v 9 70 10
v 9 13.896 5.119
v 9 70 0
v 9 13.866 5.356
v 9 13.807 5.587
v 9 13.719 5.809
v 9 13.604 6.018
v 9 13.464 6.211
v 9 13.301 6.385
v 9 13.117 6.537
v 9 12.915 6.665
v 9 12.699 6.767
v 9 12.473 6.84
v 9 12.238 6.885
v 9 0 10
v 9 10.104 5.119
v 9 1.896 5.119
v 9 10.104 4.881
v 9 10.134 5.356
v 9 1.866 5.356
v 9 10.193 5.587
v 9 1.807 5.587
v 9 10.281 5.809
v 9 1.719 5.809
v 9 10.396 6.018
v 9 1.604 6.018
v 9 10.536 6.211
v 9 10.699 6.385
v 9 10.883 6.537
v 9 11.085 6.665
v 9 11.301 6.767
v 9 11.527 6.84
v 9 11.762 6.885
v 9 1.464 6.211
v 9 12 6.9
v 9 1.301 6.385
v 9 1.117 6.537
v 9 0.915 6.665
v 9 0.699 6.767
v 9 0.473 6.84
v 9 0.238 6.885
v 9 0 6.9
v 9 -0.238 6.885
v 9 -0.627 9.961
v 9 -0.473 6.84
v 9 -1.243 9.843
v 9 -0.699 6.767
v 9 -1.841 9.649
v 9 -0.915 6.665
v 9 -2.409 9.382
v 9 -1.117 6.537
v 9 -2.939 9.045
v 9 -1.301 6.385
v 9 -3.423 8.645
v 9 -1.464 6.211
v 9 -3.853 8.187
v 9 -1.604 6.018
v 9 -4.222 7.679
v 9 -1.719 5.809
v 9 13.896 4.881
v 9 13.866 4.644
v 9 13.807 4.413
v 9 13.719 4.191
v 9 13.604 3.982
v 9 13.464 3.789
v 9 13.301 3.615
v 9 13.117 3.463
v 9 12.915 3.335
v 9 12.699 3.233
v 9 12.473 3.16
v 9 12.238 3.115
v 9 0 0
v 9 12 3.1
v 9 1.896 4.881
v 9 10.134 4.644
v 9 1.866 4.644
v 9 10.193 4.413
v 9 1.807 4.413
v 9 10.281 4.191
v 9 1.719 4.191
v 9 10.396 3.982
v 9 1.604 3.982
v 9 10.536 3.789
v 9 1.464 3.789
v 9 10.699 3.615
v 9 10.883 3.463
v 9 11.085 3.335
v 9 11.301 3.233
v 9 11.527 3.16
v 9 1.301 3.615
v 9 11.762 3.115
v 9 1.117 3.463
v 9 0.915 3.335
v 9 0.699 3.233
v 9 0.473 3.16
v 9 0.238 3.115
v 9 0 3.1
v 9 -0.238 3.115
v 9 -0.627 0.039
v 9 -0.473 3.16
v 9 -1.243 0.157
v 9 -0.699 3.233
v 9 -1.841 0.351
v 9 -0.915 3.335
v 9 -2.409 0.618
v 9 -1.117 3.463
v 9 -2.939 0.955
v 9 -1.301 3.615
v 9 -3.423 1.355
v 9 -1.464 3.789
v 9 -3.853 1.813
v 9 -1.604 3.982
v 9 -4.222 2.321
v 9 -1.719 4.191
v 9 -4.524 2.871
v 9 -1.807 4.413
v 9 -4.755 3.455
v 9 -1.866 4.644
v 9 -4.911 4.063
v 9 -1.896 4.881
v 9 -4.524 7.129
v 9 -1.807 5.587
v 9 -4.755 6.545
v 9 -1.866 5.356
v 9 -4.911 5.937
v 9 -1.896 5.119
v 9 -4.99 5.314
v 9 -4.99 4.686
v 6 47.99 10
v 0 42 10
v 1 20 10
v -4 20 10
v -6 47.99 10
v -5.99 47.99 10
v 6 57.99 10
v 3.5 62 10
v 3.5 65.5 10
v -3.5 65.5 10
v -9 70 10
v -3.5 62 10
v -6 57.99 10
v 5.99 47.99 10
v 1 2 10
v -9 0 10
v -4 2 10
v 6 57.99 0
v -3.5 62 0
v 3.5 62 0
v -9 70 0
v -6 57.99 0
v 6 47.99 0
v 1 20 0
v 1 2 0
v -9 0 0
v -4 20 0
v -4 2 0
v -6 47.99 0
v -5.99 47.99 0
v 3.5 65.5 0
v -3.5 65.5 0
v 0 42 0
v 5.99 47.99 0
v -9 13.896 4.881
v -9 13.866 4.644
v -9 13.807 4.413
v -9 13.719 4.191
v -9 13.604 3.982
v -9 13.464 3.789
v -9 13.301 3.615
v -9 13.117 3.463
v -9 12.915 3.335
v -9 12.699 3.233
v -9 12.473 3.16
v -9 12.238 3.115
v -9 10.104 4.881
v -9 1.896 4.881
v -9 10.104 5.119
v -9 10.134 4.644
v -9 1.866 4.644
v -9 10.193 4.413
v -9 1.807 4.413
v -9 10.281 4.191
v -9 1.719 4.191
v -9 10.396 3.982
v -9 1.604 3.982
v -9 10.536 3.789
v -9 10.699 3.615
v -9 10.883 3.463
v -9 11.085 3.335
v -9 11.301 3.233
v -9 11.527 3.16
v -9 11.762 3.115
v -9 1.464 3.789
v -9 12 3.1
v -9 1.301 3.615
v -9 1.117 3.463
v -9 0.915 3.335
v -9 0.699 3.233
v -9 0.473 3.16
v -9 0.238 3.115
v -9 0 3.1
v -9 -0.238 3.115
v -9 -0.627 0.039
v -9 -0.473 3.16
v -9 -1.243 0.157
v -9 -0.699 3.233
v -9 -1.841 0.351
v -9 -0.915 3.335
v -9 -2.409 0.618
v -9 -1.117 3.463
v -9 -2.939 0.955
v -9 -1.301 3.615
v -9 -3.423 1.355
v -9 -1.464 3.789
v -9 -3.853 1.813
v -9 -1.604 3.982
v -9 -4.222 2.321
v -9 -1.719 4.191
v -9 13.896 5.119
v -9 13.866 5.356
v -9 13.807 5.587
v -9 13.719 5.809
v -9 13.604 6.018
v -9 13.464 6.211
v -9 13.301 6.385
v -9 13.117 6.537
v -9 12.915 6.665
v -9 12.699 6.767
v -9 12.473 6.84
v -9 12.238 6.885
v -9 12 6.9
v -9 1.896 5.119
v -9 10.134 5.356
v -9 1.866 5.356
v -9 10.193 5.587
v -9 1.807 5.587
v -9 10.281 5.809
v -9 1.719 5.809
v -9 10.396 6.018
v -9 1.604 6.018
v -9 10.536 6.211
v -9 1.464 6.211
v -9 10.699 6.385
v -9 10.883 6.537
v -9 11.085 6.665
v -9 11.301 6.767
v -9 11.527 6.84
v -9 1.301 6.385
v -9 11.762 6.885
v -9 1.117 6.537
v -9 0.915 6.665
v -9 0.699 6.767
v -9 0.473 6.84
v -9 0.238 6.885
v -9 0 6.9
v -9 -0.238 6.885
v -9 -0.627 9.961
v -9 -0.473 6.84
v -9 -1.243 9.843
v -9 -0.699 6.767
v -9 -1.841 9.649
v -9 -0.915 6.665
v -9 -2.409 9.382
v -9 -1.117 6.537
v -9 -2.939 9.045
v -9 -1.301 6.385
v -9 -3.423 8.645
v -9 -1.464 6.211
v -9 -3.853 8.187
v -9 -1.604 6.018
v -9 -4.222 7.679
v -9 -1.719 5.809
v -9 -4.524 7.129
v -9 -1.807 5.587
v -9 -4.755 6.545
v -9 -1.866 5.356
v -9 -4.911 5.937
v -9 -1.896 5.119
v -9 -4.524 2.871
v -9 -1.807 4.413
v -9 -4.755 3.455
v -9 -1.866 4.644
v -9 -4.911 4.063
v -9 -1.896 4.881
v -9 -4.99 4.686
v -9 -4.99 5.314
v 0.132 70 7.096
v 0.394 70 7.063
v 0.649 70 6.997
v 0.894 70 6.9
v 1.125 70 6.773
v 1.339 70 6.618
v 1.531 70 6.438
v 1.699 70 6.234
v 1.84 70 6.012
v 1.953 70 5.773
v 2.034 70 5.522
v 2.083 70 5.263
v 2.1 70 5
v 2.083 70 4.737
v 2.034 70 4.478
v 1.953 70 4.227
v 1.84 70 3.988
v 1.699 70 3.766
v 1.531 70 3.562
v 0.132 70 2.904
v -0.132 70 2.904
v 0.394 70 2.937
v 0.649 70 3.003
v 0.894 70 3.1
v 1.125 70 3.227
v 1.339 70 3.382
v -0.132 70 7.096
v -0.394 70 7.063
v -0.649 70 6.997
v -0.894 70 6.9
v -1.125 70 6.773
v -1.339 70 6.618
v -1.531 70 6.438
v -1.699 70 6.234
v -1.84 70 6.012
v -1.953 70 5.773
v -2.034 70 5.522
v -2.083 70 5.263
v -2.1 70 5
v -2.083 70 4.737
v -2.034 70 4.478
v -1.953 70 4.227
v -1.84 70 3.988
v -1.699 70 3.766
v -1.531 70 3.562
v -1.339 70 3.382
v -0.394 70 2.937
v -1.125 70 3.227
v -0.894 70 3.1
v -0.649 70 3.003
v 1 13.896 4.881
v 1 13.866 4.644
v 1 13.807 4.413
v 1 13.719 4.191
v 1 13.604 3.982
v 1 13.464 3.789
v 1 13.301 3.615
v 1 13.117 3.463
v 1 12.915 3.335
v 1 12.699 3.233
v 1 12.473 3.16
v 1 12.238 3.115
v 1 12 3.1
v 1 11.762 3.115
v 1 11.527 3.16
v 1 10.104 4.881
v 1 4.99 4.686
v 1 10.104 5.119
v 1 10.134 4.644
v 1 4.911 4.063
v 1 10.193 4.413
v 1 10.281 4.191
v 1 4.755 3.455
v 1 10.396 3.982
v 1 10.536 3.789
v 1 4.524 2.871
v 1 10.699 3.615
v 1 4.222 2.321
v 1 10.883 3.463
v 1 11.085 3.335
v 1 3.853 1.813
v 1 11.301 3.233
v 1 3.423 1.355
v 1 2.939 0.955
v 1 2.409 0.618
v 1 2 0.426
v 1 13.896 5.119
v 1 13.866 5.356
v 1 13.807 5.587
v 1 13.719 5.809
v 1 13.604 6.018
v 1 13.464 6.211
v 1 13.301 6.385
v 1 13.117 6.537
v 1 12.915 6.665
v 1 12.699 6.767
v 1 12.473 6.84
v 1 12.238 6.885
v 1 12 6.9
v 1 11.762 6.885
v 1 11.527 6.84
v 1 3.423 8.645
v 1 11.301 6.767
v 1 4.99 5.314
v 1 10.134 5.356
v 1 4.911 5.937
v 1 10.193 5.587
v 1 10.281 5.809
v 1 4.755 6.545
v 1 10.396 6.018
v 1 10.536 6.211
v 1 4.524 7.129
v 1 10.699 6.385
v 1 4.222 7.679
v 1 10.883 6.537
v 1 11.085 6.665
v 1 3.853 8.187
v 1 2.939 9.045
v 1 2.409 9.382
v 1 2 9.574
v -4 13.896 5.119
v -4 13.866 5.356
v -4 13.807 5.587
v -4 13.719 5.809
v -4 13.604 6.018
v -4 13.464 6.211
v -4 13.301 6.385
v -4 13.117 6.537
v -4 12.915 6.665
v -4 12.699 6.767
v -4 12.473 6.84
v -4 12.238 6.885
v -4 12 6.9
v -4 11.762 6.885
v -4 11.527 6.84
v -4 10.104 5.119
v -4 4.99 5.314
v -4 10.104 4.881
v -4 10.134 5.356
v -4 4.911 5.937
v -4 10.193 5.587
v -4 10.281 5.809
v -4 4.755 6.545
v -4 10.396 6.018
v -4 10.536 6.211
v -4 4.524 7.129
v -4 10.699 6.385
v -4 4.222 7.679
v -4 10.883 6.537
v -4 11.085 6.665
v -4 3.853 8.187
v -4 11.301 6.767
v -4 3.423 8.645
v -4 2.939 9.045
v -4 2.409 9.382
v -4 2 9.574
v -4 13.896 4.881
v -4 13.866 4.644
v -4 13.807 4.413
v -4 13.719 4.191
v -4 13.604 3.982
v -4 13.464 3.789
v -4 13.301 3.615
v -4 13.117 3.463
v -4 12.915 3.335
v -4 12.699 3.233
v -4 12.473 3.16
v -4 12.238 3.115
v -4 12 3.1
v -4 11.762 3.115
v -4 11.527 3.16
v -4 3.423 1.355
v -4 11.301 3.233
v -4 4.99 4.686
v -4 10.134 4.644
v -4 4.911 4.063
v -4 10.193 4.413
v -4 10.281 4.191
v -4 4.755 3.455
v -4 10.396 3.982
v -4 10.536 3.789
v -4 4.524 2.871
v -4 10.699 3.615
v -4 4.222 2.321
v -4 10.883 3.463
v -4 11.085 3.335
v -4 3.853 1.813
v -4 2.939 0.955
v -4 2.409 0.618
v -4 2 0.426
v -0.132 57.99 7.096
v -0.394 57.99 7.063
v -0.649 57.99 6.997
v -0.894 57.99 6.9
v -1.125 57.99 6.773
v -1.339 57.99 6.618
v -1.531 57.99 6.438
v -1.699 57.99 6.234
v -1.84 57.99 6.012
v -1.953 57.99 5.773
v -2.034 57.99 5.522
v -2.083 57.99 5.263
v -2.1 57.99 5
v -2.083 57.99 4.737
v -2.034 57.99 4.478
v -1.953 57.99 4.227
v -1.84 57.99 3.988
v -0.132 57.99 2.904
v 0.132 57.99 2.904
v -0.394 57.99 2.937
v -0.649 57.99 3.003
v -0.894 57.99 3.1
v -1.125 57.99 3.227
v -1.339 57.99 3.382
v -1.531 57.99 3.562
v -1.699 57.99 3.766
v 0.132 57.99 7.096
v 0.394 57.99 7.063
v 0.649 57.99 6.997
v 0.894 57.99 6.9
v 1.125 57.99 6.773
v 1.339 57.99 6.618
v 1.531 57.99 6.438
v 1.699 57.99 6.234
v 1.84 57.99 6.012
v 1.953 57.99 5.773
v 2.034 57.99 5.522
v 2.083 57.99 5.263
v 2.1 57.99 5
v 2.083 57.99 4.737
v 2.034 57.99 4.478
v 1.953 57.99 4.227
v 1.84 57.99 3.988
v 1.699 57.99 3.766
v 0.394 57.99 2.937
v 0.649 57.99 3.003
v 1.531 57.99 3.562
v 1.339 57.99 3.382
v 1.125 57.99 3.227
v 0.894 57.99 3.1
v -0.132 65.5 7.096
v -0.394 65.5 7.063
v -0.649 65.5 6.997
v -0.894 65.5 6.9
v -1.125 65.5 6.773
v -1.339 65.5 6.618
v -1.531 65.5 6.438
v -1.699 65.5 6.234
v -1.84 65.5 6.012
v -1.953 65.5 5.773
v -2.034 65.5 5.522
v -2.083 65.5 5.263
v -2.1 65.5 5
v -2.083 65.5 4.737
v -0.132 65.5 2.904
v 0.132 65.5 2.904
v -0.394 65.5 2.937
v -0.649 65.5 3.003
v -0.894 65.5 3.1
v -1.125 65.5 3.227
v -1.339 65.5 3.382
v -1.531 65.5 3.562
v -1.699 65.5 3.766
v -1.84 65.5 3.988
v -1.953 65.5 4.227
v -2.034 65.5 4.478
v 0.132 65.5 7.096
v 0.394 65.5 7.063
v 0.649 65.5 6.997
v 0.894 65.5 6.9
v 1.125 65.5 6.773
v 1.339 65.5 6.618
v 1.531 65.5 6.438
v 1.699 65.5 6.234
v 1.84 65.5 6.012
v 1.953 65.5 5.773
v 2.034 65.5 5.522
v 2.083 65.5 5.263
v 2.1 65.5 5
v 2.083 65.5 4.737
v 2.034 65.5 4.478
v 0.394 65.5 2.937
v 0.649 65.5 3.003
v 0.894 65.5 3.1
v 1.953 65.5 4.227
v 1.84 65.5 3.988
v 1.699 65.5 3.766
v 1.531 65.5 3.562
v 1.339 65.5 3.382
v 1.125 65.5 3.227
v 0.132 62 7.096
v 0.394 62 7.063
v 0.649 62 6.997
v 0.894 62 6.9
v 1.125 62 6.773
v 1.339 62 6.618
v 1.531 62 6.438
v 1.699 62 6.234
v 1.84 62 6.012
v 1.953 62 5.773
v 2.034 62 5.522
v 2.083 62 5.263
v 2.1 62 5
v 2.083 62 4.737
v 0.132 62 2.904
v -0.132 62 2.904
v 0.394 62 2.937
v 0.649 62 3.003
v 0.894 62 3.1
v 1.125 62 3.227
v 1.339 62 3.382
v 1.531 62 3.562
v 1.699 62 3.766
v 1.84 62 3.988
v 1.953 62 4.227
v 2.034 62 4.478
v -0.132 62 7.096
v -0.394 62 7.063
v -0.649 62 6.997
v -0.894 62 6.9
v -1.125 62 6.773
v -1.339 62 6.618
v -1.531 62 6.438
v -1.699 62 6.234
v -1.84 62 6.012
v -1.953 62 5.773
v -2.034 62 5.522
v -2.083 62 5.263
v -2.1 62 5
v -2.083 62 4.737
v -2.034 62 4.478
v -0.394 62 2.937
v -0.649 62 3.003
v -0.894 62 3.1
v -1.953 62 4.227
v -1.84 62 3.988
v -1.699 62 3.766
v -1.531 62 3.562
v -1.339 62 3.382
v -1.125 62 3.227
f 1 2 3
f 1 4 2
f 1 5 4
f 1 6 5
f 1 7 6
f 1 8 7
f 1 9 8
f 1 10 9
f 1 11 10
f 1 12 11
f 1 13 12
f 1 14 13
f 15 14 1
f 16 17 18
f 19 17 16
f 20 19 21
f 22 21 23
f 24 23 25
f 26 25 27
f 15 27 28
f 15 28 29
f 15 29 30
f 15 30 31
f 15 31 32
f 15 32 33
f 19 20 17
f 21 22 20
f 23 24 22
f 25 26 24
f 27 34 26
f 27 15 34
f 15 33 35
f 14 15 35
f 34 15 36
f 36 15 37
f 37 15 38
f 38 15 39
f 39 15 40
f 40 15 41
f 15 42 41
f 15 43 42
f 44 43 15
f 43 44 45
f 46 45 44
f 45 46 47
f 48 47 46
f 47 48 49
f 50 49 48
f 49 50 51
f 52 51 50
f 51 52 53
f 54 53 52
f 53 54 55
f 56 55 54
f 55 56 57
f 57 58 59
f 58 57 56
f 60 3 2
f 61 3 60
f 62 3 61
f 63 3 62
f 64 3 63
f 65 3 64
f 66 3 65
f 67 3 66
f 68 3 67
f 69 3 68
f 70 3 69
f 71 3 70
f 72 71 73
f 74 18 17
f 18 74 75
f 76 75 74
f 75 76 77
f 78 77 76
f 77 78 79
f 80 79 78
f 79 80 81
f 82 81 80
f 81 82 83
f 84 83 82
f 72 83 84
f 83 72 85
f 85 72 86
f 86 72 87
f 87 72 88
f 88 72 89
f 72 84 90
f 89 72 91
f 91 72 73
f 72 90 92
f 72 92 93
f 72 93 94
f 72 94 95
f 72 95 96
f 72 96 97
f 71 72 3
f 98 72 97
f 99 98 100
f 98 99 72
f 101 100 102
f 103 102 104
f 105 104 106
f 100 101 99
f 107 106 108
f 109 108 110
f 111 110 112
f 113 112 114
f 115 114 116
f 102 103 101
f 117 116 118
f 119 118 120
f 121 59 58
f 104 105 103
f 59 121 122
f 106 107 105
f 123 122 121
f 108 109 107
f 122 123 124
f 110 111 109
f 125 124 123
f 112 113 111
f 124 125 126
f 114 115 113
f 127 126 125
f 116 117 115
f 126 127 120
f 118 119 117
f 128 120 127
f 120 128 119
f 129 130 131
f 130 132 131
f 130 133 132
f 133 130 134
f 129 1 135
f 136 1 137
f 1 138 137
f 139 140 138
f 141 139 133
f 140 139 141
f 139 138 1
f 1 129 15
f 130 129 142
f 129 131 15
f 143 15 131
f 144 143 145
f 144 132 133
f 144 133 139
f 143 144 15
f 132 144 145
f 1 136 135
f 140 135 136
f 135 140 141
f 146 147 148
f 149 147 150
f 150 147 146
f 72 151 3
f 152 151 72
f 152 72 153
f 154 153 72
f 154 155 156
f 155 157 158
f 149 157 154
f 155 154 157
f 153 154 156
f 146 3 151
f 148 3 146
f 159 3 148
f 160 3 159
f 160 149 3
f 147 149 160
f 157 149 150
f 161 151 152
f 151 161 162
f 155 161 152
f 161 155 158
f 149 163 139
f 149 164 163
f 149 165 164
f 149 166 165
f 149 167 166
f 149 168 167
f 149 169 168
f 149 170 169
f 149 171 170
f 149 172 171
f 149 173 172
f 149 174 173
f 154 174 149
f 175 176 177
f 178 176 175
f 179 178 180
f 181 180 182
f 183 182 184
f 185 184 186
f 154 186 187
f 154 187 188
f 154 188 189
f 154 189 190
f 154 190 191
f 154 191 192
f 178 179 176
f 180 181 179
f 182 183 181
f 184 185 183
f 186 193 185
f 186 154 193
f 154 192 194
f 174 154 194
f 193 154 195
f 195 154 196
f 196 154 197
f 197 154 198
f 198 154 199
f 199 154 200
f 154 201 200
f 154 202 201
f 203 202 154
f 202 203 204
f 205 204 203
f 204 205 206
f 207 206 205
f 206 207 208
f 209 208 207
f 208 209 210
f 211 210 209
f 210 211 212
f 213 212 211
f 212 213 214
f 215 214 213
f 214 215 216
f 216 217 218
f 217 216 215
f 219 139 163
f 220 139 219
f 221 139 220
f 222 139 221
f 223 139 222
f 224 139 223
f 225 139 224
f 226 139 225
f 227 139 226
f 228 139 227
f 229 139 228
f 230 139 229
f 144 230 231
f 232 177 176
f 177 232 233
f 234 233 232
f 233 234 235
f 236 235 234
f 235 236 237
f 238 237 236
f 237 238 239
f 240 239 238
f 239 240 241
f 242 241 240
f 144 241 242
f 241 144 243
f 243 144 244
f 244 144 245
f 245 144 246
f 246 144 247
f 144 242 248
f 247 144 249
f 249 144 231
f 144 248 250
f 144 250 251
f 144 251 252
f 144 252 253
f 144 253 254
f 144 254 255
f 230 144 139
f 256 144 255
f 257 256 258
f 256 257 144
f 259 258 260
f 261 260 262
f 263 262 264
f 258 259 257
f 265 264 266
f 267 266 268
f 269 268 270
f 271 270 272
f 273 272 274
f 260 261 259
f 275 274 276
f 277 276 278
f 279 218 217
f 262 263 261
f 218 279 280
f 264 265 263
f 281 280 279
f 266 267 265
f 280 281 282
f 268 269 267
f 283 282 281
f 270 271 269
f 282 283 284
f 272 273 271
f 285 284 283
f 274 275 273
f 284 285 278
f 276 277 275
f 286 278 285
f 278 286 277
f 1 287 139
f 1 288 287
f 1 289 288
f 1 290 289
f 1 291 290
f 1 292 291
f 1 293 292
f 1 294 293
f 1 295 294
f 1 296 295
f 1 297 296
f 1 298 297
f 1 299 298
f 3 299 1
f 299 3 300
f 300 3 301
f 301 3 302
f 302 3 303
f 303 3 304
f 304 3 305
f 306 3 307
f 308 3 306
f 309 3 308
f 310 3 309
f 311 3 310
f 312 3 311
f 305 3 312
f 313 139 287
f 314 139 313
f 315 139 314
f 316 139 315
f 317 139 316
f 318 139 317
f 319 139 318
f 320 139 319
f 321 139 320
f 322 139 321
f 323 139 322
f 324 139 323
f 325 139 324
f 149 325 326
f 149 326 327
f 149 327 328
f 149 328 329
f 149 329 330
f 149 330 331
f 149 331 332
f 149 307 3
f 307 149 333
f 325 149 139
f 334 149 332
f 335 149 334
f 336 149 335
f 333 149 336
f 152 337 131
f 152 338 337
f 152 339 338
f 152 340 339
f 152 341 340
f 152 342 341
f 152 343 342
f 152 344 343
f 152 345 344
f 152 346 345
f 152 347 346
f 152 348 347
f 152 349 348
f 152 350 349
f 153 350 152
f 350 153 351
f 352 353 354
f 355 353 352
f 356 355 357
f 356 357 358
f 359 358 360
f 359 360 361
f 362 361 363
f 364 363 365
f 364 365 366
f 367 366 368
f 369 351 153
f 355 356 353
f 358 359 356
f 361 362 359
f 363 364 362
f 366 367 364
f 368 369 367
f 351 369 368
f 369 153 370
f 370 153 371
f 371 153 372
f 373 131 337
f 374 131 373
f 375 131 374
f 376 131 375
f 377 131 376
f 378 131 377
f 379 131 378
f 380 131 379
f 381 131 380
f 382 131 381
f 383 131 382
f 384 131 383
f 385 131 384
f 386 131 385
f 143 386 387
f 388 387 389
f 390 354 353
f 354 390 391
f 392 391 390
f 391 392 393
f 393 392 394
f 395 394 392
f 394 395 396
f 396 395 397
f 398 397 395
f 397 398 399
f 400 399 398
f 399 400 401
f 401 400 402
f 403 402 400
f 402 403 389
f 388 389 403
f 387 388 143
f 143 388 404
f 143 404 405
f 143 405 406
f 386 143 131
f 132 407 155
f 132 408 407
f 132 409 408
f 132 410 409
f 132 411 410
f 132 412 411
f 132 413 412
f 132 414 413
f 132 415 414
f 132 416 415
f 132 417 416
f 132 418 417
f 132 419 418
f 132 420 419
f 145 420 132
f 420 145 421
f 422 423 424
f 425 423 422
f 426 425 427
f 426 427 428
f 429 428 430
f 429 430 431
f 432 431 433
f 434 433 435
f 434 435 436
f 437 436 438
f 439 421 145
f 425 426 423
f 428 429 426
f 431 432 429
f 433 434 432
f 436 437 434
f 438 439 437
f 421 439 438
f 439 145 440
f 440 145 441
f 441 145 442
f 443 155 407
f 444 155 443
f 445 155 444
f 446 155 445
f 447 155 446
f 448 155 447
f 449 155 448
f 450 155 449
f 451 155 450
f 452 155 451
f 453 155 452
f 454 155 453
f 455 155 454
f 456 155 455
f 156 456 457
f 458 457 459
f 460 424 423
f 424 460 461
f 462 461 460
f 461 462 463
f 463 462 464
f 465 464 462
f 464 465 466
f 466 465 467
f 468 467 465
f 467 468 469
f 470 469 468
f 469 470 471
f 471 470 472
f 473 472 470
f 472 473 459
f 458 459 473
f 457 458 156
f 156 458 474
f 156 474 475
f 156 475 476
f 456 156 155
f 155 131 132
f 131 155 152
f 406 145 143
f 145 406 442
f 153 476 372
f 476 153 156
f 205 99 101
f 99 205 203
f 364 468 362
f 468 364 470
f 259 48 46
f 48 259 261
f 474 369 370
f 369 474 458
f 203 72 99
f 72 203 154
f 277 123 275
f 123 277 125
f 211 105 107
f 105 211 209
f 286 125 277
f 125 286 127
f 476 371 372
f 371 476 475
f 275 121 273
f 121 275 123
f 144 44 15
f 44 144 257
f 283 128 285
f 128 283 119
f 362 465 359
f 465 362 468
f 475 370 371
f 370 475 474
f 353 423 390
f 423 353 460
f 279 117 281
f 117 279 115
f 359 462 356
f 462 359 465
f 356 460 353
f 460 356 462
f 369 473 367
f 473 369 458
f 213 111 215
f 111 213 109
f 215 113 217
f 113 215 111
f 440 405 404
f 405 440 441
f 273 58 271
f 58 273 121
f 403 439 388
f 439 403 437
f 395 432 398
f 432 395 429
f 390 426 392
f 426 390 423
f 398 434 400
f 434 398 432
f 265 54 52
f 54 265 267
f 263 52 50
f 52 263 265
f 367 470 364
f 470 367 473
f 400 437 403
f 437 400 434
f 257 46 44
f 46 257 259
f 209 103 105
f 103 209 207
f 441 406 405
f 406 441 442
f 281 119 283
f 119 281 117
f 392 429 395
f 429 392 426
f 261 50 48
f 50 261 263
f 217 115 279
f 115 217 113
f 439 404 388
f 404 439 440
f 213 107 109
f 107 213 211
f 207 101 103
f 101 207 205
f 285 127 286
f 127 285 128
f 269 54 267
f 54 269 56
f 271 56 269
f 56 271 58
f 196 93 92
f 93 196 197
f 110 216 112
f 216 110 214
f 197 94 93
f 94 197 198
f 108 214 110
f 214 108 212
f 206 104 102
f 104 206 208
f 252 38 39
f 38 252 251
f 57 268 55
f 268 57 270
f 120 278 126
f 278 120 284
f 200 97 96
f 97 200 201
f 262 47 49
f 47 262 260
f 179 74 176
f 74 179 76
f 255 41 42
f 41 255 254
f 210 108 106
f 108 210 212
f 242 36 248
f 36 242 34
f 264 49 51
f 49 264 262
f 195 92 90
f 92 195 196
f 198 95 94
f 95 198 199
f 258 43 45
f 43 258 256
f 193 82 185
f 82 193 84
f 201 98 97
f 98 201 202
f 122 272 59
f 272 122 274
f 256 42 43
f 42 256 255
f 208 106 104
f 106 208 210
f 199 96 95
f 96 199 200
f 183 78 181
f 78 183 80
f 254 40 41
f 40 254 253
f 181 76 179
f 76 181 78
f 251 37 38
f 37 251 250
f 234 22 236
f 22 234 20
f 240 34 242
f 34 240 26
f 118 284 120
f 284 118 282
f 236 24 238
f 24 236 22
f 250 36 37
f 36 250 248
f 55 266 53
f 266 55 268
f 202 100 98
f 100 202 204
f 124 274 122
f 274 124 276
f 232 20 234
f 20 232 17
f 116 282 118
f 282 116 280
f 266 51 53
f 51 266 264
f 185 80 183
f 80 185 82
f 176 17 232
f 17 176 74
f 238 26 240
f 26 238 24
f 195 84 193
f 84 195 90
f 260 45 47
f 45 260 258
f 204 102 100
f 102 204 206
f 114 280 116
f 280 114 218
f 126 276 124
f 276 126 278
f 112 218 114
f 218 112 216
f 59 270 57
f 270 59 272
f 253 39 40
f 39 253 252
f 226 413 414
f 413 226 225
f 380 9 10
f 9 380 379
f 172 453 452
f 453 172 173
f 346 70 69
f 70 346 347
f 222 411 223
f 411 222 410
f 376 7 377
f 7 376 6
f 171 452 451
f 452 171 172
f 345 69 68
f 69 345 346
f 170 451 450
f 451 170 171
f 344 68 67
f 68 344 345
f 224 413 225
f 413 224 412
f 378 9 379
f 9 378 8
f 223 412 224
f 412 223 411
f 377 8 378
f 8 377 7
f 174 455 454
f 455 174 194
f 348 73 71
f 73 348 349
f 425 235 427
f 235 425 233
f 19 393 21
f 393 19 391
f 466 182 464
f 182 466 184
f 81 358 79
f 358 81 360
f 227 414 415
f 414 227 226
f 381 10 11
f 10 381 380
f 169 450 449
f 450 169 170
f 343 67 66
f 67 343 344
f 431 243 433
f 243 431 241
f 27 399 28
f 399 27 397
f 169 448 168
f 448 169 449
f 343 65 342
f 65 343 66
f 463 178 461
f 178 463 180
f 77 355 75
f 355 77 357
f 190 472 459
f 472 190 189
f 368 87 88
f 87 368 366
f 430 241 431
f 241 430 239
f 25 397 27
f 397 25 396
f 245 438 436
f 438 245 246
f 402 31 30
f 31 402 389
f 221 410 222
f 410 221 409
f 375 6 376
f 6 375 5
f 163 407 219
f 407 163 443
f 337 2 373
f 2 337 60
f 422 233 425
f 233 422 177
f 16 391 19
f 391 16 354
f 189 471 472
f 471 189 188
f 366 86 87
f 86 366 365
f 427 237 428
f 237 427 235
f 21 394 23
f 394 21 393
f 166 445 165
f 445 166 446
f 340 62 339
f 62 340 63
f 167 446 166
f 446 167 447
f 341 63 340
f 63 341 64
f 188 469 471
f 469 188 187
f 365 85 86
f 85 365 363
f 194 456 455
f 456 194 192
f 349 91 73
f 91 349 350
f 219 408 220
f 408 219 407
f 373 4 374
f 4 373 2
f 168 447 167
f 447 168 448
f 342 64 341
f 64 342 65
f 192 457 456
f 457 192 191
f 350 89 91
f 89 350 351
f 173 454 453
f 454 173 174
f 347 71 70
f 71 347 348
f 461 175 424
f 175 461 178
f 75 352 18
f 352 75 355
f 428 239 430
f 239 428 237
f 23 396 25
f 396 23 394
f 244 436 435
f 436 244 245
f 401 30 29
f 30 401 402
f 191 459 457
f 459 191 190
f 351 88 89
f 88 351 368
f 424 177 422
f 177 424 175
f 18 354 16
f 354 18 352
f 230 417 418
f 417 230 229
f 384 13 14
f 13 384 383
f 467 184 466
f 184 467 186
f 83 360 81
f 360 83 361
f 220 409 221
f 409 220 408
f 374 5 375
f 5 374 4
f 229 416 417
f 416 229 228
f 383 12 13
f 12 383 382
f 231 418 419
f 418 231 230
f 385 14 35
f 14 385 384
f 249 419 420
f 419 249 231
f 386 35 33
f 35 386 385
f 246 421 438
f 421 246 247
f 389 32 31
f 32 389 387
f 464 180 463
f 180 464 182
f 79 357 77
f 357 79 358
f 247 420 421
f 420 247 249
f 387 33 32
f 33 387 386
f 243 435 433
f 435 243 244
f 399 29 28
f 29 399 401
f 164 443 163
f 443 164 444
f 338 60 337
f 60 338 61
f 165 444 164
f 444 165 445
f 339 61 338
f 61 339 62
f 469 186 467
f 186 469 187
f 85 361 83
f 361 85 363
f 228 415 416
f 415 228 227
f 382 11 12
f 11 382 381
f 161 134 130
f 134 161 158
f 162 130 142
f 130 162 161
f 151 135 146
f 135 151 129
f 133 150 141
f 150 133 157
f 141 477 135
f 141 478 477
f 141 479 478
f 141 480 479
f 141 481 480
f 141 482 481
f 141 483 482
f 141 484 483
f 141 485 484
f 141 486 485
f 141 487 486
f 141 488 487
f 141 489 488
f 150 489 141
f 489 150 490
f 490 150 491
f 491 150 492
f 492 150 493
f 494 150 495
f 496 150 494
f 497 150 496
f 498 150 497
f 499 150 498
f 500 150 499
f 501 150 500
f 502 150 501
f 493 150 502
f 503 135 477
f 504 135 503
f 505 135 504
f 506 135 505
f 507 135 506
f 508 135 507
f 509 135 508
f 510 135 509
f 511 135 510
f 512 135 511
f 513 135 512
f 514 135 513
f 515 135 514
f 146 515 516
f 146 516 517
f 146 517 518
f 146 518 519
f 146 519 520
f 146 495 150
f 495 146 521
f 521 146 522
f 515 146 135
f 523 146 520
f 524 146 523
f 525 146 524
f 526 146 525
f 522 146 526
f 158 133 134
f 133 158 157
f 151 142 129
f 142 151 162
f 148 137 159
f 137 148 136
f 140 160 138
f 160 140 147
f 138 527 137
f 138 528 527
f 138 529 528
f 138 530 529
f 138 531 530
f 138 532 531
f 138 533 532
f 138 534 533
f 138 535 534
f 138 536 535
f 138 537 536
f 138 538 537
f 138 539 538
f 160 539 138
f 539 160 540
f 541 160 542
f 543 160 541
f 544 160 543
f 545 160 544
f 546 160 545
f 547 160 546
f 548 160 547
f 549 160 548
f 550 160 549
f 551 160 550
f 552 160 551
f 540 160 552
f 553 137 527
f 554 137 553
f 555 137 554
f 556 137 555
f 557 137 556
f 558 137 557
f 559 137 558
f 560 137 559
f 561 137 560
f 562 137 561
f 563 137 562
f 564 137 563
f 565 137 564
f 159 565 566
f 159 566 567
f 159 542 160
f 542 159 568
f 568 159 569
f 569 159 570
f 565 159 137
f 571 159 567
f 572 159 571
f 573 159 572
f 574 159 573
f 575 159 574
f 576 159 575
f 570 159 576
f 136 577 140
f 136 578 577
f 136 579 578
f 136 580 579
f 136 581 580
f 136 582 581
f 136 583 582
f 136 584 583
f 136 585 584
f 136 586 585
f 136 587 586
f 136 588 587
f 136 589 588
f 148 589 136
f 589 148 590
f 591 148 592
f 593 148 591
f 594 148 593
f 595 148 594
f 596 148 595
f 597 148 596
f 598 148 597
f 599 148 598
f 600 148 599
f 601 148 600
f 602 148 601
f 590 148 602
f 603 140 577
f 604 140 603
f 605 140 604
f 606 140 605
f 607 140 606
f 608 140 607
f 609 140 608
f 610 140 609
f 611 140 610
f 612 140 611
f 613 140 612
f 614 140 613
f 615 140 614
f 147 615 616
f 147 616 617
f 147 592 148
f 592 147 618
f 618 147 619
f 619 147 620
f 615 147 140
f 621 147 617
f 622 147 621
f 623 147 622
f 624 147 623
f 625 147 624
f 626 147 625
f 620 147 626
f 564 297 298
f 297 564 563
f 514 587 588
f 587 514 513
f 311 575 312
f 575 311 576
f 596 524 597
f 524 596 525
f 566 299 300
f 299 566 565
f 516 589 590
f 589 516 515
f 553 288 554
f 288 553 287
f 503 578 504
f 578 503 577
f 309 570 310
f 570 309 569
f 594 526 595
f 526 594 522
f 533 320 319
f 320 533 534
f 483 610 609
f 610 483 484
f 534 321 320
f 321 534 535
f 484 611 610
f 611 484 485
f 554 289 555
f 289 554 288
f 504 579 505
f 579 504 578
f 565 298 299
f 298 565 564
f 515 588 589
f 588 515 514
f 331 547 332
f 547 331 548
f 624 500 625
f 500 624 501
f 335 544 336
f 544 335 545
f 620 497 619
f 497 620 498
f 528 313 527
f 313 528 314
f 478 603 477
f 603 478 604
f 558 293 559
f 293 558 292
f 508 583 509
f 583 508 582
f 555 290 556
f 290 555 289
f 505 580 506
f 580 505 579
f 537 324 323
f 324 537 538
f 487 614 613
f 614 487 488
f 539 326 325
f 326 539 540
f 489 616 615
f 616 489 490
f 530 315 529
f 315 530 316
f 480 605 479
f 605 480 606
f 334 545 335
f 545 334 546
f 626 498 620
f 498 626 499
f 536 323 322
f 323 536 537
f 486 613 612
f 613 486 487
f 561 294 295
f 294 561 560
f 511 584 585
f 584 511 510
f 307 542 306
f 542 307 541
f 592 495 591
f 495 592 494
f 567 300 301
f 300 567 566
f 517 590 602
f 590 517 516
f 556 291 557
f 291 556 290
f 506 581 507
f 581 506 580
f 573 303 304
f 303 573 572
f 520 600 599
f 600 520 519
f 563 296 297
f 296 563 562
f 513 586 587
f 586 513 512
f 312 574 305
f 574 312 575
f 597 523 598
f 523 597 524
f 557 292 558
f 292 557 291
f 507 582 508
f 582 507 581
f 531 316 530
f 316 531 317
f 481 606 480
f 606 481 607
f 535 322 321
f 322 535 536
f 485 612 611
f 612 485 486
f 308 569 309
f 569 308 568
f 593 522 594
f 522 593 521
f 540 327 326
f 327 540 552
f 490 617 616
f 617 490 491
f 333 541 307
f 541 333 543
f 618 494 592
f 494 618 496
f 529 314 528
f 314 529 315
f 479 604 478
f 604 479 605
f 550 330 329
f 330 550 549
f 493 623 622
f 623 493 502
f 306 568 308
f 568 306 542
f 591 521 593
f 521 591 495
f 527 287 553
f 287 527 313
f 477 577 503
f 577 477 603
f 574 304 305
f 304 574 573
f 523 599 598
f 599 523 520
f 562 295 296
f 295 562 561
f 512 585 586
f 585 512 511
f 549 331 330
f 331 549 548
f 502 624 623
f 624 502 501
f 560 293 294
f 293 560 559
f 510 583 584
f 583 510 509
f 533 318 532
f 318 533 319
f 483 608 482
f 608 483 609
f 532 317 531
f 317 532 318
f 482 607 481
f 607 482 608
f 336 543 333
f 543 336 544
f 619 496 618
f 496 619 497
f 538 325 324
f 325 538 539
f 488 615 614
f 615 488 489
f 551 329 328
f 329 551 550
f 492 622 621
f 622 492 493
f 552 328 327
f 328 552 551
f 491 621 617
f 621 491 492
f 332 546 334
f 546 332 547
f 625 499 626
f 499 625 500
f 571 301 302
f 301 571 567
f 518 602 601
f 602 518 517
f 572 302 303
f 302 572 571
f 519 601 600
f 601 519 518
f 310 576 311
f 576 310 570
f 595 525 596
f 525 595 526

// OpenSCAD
$fn=50;
laenge=70;

difference(){
  union(){
    translate([-9,0,5]){
      rotate([0,90,0]){
        cylinder(r=5,h=18);
      }
    }
    difference(){
      translate([-9,0,0]){
        cube([18,laenge,10]);
      }
      translate([-4,2,-1]){
        cube([5,18,12]);
      }
    }  
  }
// end of union  
// beginn difference
  
  translate([-10,0,5]){
    rotate([0,90,0]){
      cylinder(r=1.9,h=20);
    }
  }
  translate([-10,12,5]){
    rotate([0,90,0]){
      cylinder(r=1.9,h=20);
    }
  }
translate([0,laenge-28,-1]){
    rotate([0,0,0]) {
	    linear_extrude(height=13)
	    polygon(points = [[0, 0],[-6,6],[6, 6]]);
    }
}
translate([-6,laenge-22.01,-1]){
  cube([12,10,13]);
}
translate([-3.5,laenge-8,-1]){
  cube([7,3.5,12]);
}
  translate([0,laenge+0.01,5]){
    rotate([90,0,0]){
      cylinder(r=2.1,h=20);
    }
  }
 // translate([-10,laenge-35,5]){
 //   rotate([0,90,0]){
 //     cylinder(r=3,h=20);
 //   }
 // }
//translate([-11,25,1]){
// cube([22,5,12]);
//}

}

// end difference
